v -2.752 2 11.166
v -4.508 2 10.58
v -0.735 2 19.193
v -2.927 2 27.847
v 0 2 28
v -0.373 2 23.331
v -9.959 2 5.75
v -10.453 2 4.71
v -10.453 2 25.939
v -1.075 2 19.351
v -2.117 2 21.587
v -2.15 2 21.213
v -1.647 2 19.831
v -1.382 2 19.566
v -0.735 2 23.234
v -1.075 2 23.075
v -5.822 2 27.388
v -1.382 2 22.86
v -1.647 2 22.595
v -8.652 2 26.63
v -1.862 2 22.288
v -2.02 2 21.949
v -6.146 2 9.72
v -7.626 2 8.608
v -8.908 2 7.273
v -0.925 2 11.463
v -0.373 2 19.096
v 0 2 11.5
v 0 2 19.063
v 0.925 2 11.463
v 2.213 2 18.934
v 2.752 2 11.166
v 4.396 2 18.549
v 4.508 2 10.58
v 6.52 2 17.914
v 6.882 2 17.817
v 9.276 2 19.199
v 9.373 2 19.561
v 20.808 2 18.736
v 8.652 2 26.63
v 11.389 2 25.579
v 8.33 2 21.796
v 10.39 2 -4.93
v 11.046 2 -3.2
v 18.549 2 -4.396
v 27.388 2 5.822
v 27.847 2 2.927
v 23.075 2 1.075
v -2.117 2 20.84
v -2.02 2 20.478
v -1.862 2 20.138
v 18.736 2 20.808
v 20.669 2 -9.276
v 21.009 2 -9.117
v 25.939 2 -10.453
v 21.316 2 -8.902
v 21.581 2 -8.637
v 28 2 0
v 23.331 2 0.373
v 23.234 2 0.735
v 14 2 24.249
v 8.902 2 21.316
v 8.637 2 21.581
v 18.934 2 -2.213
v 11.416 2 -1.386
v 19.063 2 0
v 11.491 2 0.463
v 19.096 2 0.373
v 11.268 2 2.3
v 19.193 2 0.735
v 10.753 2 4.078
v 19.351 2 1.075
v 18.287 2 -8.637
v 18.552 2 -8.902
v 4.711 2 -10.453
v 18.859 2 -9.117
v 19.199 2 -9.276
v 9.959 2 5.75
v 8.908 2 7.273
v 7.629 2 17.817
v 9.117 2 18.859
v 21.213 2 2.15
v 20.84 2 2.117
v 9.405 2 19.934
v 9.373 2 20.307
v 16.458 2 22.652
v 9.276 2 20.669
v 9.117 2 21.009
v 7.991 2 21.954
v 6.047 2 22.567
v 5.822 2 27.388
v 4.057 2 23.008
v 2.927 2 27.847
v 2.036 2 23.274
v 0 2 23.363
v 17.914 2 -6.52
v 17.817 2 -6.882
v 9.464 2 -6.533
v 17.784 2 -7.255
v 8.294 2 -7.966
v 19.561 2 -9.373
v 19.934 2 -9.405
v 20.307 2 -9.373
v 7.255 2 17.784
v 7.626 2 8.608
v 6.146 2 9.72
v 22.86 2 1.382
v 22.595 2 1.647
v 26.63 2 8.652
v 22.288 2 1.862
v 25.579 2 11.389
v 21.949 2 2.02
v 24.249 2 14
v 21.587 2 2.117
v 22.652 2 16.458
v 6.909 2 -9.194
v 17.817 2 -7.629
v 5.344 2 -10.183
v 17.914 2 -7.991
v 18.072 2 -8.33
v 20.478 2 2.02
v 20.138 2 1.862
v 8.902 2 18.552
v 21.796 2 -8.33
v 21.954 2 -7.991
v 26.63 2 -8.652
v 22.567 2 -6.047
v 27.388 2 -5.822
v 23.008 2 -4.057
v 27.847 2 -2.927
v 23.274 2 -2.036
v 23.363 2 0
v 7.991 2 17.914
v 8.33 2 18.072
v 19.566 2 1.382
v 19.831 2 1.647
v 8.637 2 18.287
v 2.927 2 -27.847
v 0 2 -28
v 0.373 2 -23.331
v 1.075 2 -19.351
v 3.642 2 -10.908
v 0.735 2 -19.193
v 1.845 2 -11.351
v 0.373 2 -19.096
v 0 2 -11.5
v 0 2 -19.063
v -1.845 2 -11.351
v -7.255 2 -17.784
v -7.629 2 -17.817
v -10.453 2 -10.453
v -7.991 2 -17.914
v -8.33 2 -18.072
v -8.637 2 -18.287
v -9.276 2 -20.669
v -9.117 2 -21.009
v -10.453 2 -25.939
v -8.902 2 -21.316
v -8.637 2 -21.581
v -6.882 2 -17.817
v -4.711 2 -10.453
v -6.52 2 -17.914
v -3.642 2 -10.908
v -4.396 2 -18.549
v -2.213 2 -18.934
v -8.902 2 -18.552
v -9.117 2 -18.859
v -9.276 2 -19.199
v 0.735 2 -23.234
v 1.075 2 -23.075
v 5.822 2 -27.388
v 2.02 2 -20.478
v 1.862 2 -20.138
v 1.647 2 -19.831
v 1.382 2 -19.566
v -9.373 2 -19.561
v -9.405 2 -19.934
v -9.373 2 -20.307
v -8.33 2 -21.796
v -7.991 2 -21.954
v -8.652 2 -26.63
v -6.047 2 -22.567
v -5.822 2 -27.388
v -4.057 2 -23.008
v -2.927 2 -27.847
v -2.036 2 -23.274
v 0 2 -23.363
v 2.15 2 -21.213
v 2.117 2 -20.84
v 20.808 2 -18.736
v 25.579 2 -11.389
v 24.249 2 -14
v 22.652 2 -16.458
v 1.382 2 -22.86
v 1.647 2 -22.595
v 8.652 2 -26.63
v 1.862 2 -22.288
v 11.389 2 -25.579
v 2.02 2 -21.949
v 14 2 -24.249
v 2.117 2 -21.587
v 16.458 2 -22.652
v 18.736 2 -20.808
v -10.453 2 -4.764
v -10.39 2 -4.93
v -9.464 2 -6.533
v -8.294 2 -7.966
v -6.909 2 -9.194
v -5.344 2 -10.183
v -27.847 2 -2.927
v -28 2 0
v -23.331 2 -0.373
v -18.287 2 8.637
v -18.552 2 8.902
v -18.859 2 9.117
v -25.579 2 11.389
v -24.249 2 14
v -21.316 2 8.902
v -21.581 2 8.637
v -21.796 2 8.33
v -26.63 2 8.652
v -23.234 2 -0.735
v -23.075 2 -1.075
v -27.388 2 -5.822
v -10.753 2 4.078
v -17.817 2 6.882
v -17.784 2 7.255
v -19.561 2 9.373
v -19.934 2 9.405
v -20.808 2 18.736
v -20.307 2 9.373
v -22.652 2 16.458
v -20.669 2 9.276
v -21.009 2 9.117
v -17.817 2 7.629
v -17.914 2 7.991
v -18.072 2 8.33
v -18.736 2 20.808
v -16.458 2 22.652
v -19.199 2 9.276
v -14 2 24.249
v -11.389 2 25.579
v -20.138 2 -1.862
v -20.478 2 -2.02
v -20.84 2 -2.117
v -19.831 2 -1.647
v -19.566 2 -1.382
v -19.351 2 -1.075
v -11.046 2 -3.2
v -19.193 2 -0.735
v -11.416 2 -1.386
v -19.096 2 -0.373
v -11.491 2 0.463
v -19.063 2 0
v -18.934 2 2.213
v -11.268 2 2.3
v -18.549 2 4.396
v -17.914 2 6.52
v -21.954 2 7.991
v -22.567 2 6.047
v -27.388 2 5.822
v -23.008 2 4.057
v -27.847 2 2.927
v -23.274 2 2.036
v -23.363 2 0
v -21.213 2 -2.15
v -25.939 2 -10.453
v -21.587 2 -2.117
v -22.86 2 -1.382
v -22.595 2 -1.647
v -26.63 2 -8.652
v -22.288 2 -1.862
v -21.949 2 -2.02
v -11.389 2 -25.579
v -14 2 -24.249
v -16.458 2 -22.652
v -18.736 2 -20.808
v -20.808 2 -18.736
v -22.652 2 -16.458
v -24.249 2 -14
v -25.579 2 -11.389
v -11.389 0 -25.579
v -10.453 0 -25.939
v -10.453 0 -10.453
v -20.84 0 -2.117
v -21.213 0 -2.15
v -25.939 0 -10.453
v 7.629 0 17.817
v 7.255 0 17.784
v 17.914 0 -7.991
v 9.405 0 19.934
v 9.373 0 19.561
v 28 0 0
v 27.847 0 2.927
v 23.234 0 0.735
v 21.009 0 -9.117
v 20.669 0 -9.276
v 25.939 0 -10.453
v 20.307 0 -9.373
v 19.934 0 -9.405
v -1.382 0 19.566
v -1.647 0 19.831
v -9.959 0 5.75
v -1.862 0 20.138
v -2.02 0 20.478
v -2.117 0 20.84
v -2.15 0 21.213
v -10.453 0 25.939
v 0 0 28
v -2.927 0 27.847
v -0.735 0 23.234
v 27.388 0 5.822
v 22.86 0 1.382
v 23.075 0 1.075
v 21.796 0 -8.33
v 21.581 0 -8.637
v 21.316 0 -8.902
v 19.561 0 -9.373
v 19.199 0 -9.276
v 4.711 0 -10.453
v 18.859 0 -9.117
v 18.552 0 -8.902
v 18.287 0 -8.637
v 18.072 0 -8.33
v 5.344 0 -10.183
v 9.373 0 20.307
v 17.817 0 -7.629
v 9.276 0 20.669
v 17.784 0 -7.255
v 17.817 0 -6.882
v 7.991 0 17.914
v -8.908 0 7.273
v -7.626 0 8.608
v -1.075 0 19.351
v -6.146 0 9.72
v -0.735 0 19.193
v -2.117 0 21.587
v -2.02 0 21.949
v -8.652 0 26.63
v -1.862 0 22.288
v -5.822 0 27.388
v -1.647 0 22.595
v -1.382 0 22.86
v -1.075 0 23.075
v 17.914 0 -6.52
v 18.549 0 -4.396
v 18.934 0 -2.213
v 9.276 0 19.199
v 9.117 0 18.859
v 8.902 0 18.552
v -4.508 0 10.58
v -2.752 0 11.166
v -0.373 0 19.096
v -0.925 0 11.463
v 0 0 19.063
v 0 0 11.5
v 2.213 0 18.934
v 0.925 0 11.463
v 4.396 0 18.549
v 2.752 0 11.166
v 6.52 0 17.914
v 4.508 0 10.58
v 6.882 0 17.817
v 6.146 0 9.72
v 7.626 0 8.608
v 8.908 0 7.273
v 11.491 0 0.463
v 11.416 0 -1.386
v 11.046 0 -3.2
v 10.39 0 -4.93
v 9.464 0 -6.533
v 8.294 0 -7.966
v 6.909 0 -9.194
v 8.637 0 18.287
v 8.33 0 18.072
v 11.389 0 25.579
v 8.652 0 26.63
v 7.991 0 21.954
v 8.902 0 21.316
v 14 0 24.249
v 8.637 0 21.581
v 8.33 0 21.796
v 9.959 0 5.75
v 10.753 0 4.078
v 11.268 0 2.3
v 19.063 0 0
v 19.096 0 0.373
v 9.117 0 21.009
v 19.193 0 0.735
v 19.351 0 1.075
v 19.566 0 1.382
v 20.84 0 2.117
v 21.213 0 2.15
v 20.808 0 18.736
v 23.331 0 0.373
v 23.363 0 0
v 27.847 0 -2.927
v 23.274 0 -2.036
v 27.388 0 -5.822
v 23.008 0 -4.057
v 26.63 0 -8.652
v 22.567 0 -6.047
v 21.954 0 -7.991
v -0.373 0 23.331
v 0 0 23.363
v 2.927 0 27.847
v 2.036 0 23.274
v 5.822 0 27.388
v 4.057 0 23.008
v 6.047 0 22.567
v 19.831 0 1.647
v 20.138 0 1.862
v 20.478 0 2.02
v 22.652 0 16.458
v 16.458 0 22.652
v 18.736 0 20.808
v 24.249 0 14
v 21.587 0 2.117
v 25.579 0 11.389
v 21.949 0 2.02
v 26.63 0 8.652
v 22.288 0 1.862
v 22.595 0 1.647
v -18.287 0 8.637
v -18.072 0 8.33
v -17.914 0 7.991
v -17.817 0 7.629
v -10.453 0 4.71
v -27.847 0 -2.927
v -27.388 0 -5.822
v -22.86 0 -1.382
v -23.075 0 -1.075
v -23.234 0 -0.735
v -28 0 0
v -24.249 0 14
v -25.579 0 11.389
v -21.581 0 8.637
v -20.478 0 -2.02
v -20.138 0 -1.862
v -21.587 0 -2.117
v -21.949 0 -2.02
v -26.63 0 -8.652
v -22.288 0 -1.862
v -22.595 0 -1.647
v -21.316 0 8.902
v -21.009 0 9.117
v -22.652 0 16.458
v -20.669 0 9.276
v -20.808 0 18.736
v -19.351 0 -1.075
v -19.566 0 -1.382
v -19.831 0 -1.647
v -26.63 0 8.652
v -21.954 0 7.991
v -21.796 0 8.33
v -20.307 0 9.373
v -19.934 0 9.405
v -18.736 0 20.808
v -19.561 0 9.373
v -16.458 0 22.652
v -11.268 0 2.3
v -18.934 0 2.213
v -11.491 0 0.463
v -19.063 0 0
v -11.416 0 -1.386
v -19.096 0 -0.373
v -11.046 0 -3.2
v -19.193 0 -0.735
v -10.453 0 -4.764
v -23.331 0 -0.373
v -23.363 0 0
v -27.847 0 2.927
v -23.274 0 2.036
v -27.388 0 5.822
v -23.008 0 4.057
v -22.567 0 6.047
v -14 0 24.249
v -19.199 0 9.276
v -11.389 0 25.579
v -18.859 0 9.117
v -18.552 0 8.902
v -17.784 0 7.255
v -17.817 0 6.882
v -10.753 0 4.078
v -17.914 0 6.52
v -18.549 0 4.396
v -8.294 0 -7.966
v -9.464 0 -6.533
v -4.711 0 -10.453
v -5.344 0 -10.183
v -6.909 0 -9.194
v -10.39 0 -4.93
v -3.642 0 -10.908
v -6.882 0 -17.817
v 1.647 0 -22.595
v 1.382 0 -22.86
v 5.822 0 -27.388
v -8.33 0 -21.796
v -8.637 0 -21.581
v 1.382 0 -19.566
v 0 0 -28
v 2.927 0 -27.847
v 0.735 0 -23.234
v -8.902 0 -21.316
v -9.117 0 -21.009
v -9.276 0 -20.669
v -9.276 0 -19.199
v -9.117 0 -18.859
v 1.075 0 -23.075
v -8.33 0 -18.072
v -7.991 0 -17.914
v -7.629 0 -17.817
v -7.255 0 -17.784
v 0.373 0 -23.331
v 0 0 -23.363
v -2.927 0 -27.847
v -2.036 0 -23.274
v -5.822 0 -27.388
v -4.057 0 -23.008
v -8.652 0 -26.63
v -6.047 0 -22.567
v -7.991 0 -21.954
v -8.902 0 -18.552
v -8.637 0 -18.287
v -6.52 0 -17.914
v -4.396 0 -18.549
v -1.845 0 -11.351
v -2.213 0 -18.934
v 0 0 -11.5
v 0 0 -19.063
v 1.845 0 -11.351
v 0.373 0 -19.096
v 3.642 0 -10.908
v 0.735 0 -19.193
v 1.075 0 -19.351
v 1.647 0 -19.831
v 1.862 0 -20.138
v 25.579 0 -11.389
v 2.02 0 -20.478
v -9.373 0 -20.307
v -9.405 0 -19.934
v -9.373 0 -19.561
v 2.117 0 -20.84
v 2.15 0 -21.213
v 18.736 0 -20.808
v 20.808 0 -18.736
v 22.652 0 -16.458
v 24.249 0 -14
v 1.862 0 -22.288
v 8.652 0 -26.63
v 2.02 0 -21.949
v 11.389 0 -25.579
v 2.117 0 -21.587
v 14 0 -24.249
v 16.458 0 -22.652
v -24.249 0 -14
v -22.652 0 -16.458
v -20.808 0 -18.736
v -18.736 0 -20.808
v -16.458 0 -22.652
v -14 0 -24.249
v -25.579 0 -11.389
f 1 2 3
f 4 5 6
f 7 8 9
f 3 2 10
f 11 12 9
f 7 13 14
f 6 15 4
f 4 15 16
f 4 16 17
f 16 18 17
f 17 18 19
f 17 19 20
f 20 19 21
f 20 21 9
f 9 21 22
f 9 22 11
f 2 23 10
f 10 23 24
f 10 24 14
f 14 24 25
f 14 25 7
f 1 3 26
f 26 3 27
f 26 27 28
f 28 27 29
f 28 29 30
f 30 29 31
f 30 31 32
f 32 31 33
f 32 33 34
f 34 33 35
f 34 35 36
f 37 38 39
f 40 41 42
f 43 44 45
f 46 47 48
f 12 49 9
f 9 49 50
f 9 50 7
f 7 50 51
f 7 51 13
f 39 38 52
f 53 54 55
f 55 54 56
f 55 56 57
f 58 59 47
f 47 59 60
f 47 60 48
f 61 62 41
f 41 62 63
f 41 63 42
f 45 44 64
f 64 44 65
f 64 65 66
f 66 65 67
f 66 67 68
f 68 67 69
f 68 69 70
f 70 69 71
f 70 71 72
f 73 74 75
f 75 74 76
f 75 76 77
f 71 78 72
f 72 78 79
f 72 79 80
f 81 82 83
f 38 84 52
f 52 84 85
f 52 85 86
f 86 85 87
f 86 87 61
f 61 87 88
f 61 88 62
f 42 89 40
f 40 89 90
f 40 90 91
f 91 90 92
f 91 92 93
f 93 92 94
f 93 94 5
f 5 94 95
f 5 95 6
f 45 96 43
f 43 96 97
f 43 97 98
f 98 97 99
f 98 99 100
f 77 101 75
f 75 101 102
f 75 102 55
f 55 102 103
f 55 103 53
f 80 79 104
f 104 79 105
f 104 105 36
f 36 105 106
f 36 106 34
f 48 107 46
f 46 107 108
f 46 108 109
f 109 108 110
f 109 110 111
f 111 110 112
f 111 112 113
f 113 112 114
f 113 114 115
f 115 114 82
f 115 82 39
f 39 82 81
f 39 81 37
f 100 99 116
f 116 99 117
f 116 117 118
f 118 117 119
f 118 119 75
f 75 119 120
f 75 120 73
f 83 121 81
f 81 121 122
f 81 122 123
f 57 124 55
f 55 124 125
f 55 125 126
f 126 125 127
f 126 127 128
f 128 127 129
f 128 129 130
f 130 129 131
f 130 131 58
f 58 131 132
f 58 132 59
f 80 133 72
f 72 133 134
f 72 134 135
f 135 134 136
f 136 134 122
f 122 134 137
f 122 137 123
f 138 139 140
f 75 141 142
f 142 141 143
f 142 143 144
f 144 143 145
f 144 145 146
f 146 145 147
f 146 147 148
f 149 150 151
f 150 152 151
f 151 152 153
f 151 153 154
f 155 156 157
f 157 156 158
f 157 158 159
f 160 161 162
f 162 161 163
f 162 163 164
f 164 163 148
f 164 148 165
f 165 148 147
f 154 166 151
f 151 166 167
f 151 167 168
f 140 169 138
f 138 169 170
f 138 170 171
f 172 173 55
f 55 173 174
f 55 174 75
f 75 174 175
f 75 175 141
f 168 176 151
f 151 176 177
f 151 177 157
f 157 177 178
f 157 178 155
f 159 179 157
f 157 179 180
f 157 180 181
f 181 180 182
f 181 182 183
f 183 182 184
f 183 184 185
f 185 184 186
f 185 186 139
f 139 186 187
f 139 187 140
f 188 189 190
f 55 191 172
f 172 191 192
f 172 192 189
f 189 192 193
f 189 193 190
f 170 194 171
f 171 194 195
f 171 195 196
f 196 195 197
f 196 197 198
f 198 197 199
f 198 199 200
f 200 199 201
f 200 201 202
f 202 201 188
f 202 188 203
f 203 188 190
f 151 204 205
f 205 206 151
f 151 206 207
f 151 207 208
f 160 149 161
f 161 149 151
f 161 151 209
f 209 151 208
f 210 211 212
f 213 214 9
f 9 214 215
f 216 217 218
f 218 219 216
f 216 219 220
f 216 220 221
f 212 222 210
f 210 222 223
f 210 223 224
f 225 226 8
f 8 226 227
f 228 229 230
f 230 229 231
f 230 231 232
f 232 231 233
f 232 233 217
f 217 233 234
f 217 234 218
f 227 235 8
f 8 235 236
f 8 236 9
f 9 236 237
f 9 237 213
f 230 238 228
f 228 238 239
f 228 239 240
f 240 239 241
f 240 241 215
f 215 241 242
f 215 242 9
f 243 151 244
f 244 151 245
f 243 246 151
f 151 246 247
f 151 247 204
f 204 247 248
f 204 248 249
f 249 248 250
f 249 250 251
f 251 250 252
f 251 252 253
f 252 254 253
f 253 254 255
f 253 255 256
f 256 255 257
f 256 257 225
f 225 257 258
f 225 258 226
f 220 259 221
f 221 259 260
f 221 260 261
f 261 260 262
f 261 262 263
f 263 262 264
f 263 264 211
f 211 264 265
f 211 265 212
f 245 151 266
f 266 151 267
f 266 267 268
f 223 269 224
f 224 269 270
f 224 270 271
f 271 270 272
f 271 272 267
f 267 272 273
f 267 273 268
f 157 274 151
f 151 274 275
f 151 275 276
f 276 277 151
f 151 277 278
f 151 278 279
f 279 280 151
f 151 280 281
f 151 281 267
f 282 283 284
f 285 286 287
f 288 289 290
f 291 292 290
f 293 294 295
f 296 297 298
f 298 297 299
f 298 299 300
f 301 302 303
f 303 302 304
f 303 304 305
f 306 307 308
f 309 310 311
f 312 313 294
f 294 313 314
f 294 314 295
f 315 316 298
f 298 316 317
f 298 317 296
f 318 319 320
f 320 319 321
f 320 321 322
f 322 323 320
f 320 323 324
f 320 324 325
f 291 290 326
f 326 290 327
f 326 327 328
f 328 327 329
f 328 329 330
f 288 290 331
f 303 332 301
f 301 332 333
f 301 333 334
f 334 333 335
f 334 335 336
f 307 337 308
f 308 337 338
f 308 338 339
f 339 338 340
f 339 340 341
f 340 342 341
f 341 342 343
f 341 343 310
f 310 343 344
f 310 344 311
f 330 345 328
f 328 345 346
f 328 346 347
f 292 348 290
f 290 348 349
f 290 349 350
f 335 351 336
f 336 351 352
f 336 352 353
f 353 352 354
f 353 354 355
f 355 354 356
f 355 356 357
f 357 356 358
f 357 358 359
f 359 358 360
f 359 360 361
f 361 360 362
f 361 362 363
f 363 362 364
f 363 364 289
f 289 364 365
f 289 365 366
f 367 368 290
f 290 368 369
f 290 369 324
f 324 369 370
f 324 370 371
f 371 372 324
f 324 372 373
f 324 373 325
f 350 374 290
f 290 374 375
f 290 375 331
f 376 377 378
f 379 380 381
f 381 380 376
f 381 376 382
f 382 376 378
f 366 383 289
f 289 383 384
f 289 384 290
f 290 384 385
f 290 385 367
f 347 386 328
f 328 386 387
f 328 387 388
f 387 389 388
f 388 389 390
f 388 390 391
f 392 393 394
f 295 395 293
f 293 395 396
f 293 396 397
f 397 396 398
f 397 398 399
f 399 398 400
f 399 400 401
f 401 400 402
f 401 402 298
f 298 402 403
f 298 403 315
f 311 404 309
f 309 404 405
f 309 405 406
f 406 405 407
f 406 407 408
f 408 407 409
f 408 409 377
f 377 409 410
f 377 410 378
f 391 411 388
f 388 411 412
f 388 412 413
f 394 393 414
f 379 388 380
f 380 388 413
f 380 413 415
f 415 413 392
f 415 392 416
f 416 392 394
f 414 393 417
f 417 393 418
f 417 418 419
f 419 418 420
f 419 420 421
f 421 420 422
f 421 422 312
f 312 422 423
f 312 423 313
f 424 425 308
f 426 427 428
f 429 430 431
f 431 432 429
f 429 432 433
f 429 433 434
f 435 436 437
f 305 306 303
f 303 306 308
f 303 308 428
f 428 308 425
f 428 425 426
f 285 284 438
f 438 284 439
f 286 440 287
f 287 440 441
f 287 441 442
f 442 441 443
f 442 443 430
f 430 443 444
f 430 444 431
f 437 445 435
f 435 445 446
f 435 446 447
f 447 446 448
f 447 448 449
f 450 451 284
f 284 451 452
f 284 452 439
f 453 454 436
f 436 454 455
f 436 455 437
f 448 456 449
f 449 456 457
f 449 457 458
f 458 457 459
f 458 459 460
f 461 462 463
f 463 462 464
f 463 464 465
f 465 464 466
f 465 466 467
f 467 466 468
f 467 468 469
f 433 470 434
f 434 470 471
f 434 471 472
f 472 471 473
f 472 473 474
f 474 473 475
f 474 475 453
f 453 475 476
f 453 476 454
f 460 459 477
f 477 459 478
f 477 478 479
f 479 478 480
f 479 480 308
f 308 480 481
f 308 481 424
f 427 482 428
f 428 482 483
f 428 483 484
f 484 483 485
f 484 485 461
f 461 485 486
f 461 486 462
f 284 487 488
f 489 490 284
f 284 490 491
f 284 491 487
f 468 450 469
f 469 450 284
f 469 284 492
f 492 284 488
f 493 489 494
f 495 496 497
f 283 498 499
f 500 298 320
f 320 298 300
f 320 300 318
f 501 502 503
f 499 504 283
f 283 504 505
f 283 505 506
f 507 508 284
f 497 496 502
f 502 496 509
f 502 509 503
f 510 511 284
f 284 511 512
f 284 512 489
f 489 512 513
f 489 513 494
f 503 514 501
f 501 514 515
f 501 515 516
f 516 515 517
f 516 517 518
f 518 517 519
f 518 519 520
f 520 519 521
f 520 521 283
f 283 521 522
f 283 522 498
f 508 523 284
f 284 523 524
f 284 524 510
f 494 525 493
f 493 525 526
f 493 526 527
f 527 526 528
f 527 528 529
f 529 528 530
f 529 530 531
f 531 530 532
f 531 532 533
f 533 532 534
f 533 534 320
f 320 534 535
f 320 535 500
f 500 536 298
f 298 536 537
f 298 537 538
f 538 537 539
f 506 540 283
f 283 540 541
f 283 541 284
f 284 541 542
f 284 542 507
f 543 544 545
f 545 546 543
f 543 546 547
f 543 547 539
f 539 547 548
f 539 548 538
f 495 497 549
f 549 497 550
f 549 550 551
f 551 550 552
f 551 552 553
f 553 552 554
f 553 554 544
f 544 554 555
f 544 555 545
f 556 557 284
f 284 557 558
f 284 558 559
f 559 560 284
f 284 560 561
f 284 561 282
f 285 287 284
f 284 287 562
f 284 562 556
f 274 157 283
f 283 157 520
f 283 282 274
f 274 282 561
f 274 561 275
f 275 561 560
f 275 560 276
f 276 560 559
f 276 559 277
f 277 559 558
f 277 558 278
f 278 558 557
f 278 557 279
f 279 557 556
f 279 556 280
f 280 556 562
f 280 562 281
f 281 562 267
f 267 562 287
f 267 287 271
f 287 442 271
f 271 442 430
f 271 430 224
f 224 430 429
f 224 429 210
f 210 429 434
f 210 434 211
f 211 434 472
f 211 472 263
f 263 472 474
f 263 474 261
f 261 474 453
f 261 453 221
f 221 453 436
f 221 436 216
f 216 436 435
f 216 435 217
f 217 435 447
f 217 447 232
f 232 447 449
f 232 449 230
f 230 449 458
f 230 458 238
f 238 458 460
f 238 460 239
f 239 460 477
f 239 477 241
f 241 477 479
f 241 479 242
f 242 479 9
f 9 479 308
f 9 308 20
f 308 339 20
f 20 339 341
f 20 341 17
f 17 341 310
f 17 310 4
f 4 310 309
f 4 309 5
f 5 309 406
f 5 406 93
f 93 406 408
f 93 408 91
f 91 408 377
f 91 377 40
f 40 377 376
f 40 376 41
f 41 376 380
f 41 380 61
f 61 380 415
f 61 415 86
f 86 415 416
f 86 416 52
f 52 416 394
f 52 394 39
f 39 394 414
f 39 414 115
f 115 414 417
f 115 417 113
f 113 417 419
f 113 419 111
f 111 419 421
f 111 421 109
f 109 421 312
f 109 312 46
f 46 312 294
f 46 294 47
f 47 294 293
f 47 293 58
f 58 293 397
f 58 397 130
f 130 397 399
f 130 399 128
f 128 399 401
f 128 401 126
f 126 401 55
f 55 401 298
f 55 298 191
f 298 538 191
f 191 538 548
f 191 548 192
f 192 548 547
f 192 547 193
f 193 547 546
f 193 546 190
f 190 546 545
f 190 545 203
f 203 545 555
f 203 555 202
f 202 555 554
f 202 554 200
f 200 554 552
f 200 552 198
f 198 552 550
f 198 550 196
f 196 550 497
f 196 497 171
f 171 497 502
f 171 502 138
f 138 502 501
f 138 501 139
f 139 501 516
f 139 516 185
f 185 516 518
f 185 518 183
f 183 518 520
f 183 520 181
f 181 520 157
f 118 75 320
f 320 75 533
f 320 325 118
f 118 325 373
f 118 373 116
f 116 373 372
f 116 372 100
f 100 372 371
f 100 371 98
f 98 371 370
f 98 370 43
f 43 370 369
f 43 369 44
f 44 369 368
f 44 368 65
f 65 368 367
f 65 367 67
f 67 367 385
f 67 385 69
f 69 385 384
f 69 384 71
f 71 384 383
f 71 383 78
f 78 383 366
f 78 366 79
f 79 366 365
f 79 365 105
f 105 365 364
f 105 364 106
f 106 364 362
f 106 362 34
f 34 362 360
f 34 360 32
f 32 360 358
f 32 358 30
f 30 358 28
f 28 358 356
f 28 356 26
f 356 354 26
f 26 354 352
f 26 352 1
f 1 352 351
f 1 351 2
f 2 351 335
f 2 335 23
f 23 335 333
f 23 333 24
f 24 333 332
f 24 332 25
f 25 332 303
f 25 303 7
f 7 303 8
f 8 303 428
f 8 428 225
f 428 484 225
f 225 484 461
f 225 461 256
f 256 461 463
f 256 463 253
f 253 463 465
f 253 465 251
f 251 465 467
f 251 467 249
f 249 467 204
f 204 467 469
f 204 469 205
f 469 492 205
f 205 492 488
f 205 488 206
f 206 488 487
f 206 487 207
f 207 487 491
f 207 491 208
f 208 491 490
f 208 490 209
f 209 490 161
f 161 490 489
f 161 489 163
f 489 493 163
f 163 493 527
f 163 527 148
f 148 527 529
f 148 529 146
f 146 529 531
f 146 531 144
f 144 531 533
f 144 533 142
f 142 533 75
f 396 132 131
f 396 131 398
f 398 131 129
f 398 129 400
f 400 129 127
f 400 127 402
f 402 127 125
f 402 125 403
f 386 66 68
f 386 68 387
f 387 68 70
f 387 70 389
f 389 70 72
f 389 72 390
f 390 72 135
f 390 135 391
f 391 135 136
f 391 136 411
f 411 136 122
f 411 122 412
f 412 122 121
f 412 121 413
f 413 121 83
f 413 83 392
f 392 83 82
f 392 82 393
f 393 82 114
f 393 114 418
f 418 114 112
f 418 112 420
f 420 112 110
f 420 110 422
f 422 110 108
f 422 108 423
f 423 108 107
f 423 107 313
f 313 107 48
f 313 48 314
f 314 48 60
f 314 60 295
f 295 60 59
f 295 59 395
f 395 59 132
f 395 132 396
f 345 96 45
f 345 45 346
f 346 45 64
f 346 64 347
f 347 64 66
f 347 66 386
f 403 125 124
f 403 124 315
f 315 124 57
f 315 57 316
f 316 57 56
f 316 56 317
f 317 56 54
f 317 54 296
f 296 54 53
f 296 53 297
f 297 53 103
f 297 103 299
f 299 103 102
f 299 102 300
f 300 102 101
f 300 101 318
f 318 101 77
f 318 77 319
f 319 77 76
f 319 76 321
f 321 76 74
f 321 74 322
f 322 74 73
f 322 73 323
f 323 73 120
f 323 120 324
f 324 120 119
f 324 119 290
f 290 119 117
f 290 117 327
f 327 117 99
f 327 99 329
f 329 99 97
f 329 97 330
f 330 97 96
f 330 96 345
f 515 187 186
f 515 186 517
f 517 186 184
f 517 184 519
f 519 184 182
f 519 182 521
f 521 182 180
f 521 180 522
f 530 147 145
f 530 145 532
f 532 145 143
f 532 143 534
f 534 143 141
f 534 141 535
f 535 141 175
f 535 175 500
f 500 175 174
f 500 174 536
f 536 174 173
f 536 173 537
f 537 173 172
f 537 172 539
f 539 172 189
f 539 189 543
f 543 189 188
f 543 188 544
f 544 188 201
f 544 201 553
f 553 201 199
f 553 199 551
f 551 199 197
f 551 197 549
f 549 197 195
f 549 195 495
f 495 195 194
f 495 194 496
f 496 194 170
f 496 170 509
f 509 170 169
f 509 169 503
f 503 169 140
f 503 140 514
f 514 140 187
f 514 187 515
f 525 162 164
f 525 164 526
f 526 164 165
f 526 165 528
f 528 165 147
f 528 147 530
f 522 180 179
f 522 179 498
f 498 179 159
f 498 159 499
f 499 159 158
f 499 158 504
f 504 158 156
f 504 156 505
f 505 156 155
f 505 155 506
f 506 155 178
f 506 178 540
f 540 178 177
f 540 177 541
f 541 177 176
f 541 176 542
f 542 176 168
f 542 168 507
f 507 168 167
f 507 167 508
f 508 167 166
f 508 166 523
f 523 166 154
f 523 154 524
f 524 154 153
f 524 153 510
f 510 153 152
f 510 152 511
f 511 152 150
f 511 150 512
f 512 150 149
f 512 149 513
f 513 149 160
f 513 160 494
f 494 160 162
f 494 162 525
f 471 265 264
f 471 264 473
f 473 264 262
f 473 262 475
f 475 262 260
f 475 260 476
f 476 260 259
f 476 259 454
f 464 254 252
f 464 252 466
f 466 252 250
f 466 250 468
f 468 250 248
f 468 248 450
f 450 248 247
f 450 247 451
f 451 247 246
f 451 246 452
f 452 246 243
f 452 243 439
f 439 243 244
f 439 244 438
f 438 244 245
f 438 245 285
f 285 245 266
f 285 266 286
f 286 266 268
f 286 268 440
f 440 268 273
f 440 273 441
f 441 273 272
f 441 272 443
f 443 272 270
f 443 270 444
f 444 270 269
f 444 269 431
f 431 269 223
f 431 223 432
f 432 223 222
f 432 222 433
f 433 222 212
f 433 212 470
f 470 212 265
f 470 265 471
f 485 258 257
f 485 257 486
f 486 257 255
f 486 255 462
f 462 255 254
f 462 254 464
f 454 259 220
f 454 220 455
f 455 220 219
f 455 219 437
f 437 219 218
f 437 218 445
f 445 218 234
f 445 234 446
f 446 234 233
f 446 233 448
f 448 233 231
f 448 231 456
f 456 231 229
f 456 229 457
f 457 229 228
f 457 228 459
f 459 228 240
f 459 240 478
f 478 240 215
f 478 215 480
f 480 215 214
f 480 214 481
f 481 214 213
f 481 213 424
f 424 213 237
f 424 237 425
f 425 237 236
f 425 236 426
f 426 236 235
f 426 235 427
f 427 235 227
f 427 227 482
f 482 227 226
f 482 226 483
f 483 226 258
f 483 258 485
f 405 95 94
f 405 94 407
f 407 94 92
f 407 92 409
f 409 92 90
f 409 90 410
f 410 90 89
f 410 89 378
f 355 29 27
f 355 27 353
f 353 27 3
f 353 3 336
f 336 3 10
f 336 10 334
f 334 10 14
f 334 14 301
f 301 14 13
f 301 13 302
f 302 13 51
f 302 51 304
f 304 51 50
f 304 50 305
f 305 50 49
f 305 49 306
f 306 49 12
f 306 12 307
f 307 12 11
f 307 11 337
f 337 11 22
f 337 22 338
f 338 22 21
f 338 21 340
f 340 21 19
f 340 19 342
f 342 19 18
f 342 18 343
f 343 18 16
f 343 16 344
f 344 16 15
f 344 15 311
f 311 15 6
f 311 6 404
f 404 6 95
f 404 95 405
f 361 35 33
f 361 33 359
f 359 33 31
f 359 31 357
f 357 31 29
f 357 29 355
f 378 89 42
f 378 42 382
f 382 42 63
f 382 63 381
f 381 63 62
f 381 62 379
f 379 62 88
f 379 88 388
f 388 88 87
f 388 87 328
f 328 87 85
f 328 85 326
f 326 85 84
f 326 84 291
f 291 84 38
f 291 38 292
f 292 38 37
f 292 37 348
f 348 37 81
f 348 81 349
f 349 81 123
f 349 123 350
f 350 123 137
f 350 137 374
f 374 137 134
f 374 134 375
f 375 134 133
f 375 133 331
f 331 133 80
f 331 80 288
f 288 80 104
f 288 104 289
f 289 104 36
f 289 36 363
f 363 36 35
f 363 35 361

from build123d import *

# Parameters (mm, degrees)
SKETCH1_R           = 28
SKETCH1_R_2         = 11.5
BOSS_EXTRUDE1_DEPTH = 2
CUT_EXTRUDE1_DEPTH  = 3
CIRPATTERN1_COUNT   = 4


with BuildPart() as part:
    # Sketch1 → Boss-Extrude1 (new body)
    with BuildSketch(Plane(origin=(0, 0, 0), x_dir=(1, 0, 0), z_dir=(0, 1, 0))):
        Circle(SKETCH1_R)
        Circle(SKETCH1_R_2, mode=Mode.SUBTRACT)
    extrude(amount=BOSS_EXTRUDE1_DEPTH)

    # Sketch2 → Cut-Extrude1 (cut, through all)
    with BuildSketch(Plane(origin=(0, 2, 0), x_dir=(1, 0, 0), z_dir=(0, 1, 0))):
        with BuildLine():
            ThreePointArc((21.954229866, 7.990686188), (19.198547424, 9.275682014), (17.913551597, 6.519999571))
            ThreePointArc((17.913551597, 6.519999571), (18.773590541, 3.310290537), (19.063203436, 0))
            ThreePointArc((19.063203436, 0), (21.213203436, -2.15), (23.363203436, 0))
            ThreePointArc((23.363203436, 0), (23.008263879, 4.056977701), (21.954229866, 7.990686188))
        make_face()
    cut_extrude1 = extrude(amount=-CUT_EXTRUDE1_DEPTH, mode=Mode.SUBTRACT)

    # CirPattern1: Cut-Extrude1 ×4 about axis
    cirpattern1_axis = Axis((0, 0, 0), (0, 1, 0))
    for i in range(1, CIRPATTERN1_COUNT):
        add(cut_extrude1.rotate(cirpattern1_axis, i * 360 / CIRPATTERN1_COUNT), mode=Mode.SUBTRACT)


solid = part.part
